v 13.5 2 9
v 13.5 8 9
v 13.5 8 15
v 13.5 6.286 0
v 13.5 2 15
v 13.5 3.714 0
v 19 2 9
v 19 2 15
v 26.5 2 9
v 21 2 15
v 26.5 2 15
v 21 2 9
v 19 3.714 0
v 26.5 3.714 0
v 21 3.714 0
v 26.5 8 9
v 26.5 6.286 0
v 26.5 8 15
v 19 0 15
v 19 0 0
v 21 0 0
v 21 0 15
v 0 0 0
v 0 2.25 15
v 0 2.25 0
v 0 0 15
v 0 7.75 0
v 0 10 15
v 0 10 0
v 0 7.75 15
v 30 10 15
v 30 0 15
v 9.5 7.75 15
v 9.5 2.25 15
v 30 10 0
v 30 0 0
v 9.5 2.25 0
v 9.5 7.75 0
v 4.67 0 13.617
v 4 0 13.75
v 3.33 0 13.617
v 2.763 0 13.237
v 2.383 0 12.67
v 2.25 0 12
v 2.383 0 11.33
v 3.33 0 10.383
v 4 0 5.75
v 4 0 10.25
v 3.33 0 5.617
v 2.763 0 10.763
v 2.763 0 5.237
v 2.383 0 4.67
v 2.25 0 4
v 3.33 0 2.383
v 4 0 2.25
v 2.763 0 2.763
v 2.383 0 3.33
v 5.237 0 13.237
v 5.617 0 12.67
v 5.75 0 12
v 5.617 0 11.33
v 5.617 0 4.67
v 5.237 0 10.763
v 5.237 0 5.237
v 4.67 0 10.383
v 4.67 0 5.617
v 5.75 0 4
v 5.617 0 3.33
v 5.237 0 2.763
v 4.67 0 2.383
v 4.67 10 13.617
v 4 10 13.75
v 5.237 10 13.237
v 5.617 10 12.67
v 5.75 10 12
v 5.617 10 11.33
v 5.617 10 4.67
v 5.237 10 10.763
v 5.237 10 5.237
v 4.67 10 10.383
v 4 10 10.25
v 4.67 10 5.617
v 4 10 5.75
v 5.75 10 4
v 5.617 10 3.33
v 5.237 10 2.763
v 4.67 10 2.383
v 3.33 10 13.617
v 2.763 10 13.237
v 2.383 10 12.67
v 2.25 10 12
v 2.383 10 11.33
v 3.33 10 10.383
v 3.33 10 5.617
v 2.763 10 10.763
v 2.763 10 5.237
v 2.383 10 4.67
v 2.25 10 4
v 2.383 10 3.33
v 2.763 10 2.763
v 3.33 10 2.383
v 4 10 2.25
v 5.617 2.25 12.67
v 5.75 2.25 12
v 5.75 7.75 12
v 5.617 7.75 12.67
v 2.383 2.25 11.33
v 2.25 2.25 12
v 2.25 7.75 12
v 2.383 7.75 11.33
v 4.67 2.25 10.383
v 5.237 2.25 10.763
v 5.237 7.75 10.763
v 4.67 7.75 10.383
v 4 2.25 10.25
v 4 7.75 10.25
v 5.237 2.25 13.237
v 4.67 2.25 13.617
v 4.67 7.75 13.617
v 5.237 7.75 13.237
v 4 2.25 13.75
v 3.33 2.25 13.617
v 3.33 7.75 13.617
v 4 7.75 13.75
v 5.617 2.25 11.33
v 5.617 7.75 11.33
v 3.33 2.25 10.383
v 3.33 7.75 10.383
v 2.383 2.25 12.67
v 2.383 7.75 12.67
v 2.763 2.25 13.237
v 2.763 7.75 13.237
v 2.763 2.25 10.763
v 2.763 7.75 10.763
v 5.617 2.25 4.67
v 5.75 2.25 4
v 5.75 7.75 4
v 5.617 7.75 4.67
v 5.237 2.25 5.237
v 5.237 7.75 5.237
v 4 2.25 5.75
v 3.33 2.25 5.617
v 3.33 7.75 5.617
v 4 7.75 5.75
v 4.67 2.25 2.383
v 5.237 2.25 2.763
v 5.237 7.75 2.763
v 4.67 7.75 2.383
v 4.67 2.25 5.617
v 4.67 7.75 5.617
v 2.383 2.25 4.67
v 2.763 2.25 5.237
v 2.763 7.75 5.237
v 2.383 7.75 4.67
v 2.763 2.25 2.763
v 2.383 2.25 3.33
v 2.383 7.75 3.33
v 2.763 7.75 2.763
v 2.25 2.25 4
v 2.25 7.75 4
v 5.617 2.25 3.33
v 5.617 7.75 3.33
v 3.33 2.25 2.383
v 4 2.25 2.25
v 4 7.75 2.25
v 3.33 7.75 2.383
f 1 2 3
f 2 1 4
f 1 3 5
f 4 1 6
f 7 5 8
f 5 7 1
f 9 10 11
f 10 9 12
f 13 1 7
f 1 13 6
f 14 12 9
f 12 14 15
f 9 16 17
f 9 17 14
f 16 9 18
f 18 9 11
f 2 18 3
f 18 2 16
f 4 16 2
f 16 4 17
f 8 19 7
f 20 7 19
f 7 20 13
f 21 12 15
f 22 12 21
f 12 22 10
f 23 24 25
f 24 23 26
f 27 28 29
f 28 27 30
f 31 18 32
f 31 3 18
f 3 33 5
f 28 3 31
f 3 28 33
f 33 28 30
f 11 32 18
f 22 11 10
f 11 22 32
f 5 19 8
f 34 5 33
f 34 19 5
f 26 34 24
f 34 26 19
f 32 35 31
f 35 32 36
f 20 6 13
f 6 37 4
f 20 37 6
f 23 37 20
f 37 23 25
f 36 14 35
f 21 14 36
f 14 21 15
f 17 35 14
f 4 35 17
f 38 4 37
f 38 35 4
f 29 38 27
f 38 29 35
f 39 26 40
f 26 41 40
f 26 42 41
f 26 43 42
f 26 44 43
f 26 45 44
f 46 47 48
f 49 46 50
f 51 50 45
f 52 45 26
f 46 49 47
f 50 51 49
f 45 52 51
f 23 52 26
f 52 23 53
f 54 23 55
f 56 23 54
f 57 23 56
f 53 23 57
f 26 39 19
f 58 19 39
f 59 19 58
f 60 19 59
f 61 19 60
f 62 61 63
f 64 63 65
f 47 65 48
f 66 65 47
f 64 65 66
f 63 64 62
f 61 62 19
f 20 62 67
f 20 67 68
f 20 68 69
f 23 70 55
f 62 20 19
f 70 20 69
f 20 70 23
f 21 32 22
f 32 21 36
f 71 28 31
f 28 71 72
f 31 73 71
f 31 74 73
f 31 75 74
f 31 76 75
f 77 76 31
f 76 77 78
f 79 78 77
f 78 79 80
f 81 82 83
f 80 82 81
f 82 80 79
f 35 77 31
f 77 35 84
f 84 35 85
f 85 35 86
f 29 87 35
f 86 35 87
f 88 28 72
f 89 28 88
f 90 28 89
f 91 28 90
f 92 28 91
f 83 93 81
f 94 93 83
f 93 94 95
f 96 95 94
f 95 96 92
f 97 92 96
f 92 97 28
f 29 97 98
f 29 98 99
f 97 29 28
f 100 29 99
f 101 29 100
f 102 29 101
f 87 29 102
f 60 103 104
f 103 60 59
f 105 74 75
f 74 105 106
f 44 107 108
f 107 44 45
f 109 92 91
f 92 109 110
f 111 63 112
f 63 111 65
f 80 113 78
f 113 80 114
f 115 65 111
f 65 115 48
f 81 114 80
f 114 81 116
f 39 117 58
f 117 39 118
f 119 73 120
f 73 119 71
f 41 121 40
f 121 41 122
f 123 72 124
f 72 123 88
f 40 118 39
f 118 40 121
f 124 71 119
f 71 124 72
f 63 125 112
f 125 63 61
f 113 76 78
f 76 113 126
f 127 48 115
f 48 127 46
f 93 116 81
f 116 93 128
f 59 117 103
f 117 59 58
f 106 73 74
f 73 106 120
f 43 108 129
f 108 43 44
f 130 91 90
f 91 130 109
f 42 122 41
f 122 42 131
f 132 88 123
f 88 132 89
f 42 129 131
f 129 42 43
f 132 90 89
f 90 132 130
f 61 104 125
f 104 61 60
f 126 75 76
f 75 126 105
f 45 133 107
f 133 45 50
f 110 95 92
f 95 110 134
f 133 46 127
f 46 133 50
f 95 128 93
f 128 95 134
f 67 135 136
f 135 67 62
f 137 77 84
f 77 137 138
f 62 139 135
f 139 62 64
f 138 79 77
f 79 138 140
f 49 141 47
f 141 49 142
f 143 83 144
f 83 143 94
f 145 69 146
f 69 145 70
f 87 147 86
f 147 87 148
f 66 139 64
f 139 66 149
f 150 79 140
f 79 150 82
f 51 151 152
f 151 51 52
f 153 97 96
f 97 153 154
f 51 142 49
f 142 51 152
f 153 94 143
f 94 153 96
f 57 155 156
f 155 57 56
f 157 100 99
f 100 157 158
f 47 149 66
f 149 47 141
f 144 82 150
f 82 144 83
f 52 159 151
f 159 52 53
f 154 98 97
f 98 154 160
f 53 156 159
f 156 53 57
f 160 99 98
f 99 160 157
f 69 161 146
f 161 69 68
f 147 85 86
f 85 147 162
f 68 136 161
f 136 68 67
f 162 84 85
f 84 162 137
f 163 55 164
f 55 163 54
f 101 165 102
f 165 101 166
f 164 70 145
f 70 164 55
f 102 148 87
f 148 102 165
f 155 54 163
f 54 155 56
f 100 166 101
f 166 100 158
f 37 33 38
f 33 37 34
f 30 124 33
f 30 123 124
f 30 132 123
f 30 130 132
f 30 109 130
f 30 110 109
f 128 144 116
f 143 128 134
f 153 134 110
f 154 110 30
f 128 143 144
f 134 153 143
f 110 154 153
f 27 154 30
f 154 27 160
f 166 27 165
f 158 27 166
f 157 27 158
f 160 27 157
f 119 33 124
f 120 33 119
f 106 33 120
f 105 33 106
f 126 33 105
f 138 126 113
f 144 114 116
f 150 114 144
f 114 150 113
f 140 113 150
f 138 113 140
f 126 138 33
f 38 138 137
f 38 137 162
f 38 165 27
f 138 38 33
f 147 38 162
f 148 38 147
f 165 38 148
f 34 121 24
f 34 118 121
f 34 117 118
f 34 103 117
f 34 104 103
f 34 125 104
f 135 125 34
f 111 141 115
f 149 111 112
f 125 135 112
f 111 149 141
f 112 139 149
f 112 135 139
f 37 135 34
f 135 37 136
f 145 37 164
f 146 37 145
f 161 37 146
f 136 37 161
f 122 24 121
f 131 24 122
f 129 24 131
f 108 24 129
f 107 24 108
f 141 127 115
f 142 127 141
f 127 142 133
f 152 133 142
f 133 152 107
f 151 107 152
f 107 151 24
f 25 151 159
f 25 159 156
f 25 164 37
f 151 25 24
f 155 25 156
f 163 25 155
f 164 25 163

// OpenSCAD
difference(){
    cube([30,10,15]);
    translate([4,15,12])rotate([90,0,0])cylinder(r=3.5/2,h=20,$fn=16);
    translate([4,15,4])rotate([90,0,0])cylinder(r=3.5/2,h=20,$fn=16);
    #translate([20,5,2])
        union(){
            hull(){
                translate([0,0,10.5])cube([13,6,7],center=true);
                translate([0,0,-3])cube([13,2,1],center=true);
            }

            translate([0,-5,0])cube([2,10,30],center=true);
        }
    translate([-5.5,4.5/2,-1])cube([15,5.5,20]);
}
